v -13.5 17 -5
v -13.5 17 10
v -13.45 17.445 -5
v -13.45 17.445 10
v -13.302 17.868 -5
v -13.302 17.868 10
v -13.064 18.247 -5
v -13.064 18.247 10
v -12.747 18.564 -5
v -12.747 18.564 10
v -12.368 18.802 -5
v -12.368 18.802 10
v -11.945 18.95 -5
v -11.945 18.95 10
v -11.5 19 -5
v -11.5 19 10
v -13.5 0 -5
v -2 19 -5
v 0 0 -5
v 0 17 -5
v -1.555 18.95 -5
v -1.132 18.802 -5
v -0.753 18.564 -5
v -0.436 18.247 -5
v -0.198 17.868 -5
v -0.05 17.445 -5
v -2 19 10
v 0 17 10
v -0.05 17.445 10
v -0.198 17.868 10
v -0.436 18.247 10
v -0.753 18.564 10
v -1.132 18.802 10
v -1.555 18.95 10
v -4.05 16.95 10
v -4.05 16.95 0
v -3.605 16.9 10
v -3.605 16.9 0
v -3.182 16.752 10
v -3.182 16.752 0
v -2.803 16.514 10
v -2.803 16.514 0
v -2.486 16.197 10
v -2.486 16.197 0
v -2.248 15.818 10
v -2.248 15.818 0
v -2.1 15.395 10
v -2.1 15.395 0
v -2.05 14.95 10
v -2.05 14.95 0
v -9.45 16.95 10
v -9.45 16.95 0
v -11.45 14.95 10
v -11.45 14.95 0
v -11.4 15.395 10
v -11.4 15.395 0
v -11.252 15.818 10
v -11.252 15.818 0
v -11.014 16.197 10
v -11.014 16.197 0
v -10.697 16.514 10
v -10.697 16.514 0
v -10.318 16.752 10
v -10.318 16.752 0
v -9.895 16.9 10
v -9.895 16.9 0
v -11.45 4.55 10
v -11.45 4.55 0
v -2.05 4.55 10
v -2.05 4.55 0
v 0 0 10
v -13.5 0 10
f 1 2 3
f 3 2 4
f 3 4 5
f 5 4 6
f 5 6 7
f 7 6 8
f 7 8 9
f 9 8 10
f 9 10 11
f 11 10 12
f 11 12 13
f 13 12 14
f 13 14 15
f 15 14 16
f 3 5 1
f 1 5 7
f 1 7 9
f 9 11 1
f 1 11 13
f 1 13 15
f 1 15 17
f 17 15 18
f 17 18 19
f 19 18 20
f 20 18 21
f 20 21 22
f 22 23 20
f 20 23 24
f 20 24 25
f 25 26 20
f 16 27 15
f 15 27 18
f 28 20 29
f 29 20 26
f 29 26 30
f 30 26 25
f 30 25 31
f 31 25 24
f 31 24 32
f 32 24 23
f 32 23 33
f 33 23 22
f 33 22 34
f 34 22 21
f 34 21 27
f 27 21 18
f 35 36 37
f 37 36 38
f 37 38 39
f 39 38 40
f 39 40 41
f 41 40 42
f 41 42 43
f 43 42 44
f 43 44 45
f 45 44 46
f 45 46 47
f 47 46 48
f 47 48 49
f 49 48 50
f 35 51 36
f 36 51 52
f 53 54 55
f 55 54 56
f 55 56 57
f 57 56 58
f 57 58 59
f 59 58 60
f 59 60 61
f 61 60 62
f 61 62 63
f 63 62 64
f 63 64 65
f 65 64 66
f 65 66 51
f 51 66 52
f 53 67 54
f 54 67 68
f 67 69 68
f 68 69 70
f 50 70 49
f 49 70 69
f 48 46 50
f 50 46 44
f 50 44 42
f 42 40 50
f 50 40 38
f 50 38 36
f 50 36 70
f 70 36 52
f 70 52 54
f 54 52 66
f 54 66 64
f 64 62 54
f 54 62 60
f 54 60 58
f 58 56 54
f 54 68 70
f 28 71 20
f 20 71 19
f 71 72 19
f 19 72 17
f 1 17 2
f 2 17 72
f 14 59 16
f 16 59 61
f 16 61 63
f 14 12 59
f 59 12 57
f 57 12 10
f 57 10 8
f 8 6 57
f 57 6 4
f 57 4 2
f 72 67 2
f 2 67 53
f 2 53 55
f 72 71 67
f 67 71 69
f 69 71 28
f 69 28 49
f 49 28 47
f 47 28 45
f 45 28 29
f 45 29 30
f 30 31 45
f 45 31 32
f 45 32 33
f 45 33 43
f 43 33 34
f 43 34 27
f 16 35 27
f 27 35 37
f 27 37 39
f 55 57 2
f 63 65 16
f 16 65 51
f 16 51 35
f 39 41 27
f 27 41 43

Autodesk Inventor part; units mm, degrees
ref_plane "YZ Plane" through (0, 0, 0) normal (1, 0, 0) x (0, 1, 0)
ref_plane "XZ Plane" through (0, 0, 0) normal (0, 1, 0) x (-1, 0, 0)
ref_plane "XY Plane" through (0, 0, 0) normal (0, 0, 1) x (1, 0, 0)
sketch "Sketch1" plane through (0, 0, 0) normal (0, 0, 1) x (1, 0, 0)
  line L0 (0, 0) -> (-13.5, 0)
  line L1 (-13.5, 0) -> (-13.5, 19)
  line L2 (-13.5, 19) -> (0, 19)
  line L3 (0, 19) -> (0, 0)
  dimension "d0" = 13.5
  dimension "d1" = 19
extrude "Extrusion1" add sketch "Sketch1" along normal blind 10 and the other way blind 5
sketch "Sketch2" plane through (0, 0, 10) normal (0, 0, 1) x (1, 0, 0)
  line L0 (-13.5, 19) -> (-13.5, 0) projected
  line L1 (-13.5, 0) -> (-11.45, 0)
  line L2 (-11.45, 0) -> (-11.45, 4.55)
  line L3 (-11.45, 4.55) -> (-13.5, 4.55)
  line L4 (-13.5, 4.55) -> (-13.5, 0)
  line L5 (0, 19) -> (-13.5, 19) projected
  line L6 (0, 19) -> (-2.05, 19)
  line L7 (-2.05, 19) -> (-2.05, 16.95)
  line L8 (-2.05, 16.95) -> (0, 16.95)
  line L9 (0, 16.95) -> (0, 19)
  line L10 (-11.45, 4.55) -> (-2.05, 4.55)
  line L11 (-2.05, 4.55) -> (-2.05, 16.95)
  line L12 (-2.05, 16.95) -> (-11.45, 16.95)
  line L13 (-11.45, 16.95) -> (-11.45, 4.55)
  point P0 (0, 0)
  dimension "d4" = 2.05
  dimension "d5" = 4.55
  dimension "d6" = 2.05
  dimension "d7" = 2.05
extrude "Extrusion2" cut sketch "Sketch2" against normal blind 10 contours L13 L12 L11 L10
fillet "Fillet1" radius 2 2 edges at (-11.45, 16.95, 5) (-2.05, 16.95, 5)
fillet "Fillet9" radius 2 2 edges at (0, 19, 2.5) (-13.5, 19, 2.5)
properties part number "Rod"
